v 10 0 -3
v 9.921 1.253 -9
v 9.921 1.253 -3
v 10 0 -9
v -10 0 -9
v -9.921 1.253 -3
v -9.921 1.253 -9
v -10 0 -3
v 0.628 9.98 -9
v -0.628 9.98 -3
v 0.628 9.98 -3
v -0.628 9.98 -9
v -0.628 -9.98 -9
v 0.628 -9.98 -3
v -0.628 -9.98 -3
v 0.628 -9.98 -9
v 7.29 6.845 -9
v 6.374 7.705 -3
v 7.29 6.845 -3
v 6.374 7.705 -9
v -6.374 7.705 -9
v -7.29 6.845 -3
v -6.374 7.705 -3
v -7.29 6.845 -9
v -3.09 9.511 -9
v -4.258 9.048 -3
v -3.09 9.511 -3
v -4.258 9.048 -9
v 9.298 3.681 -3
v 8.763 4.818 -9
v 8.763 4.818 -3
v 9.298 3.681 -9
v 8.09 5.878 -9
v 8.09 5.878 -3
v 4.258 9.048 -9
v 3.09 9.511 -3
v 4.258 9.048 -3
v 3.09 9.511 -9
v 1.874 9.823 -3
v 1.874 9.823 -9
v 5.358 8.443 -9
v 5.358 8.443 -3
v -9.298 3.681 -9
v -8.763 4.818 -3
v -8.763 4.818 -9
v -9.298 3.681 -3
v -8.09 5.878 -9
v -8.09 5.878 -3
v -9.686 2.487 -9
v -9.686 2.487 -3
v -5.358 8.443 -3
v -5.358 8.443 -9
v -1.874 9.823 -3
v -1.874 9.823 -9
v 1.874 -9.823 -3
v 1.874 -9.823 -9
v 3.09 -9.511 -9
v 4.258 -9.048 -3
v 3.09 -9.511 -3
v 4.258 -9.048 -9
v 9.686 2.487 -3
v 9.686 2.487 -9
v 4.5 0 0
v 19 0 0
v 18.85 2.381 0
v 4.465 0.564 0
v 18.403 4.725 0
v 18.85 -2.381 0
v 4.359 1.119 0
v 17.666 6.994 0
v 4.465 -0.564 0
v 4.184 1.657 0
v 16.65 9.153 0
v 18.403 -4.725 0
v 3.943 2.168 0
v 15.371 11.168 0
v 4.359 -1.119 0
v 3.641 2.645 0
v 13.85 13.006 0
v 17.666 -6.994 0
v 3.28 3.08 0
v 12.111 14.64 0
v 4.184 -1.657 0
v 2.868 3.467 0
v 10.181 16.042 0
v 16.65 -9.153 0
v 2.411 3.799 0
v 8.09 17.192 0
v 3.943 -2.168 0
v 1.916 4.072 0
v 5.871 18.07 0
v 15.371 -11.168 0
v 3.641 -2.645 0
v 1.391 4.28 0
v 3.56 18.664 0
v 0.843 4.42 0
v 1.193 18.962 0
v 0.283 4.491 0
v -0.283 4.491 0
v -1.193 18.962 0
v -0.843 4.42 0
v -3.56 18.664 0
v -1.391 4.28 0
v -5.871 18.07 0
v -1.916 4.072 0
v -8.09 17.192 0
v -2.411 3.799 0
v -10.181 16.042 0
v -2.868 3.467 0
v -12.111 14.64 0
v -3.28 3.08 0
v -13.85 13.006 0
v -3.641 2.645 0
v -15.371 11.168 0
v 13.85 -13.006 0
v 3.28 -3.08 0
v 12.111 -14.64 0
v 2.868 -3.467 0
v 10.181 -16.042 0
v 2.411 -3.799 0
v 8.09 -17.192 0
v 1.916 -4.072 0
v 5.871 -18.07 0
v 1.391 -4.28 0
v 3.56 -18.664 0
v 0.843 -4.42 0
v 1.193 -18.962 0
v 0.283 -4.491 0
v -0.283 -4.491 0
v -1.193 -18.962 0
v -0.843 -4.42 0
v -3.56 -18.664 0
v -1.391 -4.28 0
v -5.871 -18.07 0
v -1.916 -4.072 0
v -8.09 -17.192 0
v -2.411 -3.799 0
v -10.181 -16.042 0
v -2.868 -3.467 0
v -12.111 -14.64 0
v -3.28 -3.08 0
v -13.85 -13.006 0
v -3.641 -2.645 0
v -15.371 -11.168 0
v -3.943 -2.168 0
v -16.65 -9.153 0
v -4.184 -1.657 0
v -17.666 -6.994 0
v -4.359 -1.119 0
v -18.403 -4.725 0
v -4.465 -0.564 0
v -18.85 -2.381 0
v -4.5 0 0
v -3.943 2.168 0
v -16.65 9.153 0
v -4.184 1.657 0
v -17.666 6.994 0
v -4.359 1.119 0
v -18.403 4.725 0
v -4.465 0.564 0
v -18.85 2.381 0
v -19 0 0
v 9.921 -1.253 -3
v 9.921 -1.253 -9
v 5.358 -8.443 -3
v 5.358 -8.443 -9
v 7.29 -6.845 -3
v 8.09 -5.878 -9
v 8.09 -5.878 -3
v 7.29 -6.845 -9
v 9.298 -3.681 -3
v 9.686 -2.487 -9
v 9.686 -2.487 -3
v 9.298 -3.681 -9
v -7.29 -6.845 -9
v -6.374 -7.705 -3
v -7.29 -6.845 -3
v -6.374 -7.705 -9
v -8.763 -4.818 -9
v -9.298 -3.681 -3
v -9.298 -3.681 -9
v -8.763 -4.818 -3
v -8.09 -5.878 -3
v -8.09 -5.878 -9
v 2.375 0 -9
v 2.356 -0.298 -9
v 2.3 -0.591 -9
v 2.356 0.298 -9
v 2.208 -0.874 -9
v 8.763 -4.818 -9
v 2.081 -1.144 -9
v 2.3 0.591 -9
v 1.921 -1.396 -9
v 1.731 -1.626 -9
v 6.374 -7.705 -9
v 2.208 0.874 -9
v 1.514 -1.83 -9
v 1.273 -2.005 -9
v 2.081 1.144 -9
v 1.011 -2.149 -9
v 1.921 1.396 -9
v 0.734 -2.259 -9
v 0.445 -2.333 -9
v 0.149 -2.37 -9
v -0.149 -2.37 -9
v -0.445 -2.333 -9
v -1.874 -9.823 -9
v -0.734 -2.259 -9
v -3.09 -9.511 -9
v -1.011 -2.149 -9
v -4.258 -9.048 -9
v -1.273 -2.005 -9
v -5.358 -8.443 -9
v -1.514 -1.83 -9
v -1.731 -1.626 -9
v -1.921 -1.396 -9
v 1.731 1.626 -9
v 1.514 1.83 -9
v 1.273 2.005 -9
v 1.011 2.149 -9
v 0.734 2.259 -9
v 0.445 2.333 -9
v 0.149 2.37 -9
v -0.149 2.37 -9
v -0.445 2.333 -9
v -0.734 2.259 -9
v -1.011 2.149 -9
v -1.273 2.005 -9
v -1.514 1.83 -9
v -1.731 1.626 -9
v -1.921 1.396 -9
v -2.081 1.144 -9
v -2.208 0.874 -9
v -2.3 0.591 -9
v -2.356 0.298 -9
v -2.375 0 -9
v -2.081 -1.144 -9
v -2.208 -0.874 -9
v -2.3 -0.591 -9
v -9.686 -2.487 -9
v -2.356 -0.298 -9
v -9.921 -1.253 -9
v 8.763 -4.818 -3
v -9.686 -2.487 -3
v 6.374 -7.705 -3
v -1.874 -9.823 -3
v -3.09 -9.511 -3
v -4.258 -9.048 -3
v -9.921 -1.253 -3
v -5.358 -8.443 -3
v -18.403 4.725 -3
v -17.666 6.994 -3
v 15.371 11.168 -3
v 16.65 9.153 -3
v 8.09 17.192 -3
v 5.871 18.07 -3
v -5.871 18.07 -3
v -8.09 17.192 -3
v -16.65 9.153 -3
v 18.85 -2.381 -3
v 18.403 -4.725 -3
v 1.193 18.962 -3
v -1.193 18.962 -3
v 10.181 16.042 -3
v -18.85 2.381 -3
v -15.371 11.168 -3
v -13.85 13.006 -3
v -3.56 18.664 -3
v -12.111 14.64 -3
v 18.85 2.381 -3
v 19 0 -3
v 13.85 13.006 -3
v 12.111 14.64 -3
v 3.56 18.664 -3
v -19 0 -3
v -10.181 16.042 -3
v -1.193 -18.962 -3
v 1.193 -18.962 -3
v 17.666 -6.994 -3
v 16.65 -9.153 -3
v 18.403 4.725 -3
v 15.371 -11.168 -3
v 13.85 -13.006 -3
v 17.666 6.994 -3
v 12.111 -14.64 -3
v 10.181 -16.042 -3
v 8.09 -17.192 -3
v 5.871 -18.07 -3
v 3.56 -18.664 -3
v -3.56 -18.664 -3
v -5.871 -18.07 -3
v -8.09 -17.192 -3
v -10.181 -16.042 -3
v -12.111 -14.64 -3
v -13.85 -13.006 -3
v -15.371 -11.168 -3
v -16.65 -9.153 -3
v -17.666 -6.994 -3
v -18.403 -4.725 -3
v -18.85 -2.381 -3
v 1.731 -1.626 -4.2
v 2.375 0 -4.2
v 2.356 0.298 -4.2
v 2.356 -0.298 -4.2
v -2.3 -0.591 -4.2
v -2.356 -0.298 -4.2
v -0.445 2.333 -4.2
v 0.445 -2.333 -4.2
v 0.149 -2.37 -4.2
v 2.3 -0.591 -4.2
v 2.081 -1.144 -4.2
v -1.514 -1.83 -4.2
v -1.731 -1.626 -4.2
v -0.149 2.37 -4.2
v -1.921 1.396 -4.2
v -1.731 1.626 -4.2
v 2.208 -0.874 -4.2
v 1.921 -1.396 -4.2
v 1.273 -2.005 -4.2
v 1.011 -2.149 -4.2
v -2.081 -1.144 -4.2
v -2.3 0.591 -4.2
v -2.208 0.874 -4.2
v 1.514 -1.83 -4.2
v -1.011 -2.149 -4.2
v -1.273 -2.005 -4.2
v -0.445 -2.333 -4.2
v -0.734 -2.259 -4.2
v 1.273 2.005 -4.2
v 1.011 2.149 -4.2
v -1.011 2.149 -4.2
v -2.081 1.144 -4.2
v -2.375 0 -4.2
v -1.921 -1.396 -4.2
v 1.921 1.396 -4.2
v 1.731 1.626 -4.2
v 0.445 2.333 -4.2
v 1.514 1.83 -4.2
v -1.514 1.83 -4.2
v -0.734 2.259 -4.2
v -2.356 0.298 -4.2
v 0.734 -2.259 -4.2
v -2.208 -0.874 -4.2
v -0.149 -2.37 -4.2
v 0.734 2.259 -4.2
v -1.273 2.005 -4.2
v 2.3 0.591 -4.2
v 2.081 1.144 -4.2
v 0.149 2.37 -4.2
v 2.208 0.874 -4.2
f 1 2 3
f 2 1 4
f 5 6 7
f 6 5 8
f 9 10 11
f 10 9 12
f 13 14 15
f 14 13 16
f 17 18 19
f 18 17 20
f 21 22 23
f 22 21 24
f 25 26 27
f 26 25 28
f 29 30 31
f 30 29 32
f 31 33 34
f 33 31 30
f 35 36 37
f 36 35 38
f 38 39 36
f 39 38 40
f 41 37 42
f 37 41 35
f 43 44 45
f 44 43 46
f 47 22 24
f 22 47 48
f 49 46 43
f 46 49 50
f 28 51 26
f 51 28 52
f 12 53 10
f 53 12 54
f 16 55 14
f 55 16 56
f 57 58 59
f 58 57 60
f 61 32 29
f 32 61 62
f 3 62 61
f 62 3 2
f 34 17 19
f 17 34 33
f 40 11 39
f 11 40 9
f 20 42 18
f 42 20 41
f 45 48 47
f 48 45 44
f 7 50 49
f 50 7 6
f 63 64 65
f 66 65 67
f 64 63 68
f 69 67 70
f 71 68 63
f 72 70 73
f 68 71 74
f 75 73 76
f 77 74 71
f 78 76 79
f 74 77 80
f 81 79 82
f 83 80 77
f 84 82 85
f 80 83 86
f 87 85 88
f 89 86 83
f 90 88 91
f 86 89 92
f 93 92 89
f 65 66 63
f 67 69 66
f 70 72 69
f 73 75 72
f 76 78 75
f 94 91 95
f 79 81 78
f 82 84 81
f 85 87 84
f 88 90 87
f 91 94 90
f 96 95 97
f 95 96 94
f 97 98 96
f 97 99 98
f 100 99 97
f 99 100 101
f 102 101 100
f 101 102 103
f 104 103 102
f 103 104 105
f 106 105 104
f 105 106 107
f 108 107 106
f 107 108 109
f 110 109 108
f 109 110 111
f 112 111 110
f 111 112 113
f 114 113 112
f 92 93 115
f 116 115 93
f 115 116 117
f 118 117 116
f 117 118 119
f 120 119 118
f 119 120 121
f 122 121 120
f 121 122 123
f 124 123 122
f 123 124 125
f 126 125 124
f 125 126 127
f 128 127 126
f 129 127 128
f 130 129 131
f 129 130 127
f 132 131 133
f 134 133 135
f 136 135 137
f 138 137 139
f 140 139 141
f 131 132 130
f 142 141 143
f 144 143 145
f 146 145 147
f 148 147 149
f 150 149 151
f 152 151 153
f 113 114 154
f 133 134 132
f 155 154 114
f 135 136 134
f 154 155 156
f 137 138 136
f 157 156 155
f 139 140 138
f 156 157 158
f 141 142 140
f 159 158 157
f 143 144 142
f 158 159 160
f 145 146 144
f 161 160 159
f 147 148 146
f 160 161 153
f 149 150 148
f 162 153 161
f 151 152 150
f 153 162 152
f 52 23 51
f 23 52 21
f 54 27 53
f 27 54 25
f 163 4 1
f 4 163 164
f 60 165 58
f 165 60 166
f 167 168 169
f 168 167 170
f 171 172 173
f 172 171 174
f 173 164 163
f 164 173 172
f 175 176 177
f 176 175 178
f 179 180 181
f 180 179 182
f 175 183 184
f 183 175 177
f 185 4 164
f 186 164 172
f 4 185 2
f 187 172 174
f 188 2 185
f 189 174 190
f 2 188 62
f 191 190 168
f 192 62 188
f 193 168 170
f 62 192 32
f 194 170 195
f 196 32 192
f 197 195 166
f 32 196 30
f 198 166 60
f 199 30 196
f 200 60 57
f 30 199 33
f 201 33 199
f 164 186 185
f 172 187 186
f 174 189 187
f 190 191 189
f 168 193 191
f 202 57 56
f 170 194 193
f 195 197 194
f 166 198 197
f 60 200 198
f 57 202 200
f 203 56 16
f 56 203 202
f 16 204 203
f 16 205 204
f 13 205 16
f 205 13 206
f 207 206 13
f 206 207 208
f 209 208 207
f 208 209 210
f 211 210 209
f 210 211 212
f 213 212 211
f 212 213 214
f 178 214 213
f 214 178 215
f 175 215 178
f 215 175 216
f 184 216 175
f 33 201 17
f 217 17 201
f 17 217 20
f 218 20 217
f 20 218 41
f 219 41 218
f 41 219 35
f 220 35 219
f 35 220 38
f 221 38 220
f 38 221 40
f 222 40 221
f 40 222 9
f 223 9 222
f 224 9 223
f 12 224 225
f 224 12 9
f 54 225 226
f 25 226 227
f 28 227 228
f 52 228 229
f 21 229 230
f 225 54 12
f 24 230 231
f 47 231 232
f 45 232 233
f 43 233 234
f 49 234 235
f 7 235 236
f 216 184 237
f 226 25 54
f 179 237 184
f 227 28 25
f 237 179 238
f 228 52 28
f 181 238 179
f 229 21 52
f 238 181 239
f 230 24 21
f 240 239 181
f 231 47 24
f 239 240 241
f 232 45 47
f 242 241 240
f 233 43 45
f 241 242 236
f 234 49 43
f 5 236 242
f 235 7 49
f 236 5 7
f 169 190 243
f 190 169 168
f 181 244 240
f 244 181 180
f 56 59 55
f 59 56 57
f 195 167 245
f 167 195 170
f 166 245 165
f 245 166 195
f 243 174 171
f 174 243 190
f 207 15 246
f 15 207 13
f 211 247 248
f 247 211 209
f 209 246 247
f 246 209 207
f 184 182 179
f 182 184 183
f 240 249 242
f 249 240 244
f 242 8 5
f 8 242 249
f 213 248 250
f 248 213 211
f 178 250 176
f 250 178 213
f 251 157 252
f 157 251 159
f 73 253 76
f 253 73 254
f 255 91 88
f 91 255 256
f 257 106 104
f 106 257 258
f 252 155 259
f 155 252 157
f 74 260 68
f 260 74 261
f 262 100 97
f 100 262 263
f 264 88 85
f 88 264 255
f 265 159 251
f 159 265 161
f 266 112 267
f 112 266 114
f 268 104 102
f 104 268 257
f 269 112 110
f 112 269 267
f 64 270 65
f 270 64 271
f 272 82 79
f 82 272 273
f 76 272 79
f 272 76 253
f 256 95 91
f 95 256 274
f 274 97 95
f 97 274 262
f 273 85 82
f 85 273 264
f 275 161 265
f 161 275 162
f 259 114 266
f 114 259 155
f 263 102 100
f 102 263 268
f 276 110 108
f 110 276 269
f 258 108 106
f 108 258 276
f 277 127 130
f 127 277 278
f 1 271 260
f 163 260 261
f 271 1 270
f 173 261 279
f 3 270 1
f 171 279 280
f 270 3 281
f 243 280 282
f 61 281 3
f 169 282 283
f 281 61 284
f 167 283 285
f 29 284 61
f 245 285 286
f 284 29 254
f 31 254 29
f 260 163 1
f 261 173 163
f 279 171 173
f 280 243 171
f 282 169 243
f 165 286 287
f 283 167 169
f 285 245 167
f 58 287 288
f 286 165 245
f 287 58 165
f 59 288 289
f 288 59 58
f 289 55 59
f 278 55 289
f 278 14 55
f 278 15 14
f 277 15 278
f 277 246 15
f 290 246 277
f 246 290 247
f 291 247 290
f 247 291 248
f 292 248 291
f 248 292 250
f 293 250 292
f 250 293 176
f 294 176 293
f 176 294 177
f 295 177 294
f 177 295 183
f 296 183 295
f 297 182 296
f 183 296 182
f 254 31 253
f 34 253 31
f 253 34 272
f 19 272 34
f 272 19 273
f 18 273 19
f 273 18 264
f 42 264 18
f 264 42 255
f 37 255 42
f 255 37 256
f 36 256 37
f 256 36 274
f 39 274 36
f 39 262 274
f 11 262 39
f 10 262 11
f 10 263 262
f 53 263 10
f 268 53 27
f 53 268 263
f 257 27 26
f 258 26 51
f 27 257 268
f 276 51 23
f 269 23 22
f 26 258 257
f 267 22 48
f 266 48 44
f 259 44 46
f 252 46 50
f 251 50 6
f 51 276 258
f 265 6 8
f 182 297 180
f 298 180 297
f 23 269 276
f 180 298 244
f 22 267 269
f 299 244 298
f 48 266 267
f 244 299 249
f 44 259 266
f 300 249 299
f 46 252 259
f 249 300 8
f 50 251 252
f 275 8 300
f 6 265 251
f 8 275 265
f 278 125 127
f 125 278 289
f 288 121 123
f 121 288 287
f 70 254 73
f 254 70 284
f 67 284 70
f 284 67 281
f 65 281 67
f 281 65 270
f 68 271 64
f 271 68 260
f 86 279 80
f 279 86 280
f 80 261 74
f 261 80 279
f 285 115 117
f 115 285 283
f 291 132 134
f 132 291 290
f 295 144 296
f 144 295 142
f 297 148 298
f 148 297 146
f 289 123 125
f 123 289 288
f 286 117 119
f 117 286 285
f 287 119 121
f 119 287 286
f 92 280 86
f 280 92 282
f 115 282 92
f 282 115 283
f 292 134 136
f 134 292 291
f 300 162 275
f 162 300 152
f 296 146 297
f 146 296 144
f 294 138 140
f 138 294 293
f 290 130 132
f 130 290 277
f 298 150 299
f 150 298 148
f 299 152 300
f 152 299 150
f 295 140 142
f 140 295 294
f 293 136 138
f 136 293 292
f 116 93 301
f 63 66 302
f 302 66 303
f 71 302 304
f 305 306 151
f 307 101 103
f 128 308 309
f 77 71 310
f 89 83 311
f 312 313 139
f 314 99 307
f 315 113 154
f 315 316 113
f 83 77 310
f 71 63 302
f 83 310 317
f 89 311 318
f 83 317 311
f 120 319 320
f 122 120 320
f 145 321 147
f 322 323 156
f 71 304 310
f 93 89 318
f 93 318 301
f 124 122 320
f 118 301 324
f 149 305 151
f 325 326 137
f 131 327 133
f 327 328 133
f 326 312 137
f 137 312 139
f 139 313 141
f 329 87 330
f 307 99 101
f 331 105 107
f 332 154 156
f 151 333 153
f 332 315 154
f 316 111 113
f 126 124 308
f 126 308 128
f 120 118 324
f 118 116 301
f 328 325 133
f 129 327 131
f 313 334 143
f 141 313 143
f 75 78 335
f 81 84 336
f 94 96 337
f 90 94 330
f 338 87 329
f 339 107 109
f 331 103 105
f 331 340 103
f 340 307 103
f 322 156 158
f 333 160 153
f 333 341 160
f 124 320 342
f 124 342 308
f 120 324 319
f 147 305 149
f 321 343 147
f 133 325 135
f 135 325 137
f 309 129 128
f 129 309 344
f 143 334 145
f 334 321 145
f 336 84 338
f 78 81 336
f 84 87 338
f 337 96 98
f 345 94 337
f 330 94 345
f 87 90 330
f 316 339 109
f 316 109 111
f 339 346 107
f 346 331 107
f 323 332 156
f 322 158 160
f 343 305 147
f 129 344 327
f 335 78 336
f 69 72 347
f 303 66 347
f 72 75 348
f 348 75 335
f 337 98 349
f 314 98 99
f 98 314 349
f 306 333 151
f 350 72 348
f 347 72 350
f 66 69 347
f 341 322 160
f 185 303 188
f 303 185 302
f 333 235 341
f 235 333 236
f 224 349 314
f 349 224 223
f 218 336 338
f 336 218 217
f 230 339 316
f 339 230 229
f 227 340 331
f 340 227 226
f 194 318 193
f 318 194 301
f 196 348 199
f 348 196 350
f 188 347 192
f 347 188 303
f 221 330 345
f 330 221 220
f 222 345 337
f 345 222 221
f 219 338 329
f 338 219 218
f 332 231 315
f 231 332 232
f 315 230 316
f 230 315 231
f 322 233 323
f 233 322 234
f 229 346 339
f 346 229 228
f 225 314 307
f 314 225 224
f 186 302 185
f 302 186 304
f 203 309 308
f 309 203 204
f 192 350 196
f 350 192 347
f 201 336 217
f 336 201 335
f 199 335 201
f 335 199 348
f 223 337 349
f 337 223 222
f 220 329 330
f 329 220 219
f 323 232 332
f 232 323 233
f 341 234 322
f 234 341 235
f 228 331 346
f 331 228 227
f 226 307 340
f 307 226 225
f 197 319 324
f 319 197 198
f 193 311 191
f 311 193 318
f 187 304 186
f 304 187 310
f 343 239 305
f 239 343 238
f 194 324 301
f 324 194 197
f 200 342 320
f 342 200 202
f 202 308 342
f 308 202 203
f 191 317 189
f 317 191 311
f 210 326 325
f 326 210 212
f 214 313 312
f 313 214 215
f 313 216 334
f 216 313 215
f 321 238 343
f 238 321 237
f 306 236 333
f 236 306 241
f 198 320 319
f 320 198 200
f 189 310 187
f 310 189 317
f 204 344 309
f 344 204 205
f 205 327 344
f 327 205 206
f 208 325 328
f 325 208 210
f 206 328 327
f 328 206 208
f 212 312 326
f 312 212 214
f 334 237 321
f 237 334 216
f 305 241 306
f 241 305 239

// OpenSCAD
$fn = 50;


difference() {
	union() {
		translate(v = [0, 0, -9.0000000000]) {
			cylinder(h = 9, r = 10.0000000000);
		}
		translate(v = [0, 0, -3.0000000000]) {
			cylinder(h = 3, r = 19.0000000000);
		}
	}
	union() {
		translate(v = [0, 0, 0]) {
			rotate(a = [0, 0, 0]) {
				difference() {
					union() {
						#translate(v = [0, 0, -9.0000000000]) {
							cylinder(h = 9, r = 2.2500000000);
						}
						#translate(v = [0, 0, -4.2000000000]) {
							cylinder(h = 4.2000000000, r1 = 2.3750000000, r2 = 4.5000000000);
						}
						#translate(v = [0, 0, -9.0000000000]) {
							cylinder(h = 9, r = 2.3750000000);
						}
						#translate(v = [0, 0, -9.0000000000]) {
							cylinder(h = 9, r = 2.2500000000);
						}
					}
					union();
				}
			}
		}
	}
}
